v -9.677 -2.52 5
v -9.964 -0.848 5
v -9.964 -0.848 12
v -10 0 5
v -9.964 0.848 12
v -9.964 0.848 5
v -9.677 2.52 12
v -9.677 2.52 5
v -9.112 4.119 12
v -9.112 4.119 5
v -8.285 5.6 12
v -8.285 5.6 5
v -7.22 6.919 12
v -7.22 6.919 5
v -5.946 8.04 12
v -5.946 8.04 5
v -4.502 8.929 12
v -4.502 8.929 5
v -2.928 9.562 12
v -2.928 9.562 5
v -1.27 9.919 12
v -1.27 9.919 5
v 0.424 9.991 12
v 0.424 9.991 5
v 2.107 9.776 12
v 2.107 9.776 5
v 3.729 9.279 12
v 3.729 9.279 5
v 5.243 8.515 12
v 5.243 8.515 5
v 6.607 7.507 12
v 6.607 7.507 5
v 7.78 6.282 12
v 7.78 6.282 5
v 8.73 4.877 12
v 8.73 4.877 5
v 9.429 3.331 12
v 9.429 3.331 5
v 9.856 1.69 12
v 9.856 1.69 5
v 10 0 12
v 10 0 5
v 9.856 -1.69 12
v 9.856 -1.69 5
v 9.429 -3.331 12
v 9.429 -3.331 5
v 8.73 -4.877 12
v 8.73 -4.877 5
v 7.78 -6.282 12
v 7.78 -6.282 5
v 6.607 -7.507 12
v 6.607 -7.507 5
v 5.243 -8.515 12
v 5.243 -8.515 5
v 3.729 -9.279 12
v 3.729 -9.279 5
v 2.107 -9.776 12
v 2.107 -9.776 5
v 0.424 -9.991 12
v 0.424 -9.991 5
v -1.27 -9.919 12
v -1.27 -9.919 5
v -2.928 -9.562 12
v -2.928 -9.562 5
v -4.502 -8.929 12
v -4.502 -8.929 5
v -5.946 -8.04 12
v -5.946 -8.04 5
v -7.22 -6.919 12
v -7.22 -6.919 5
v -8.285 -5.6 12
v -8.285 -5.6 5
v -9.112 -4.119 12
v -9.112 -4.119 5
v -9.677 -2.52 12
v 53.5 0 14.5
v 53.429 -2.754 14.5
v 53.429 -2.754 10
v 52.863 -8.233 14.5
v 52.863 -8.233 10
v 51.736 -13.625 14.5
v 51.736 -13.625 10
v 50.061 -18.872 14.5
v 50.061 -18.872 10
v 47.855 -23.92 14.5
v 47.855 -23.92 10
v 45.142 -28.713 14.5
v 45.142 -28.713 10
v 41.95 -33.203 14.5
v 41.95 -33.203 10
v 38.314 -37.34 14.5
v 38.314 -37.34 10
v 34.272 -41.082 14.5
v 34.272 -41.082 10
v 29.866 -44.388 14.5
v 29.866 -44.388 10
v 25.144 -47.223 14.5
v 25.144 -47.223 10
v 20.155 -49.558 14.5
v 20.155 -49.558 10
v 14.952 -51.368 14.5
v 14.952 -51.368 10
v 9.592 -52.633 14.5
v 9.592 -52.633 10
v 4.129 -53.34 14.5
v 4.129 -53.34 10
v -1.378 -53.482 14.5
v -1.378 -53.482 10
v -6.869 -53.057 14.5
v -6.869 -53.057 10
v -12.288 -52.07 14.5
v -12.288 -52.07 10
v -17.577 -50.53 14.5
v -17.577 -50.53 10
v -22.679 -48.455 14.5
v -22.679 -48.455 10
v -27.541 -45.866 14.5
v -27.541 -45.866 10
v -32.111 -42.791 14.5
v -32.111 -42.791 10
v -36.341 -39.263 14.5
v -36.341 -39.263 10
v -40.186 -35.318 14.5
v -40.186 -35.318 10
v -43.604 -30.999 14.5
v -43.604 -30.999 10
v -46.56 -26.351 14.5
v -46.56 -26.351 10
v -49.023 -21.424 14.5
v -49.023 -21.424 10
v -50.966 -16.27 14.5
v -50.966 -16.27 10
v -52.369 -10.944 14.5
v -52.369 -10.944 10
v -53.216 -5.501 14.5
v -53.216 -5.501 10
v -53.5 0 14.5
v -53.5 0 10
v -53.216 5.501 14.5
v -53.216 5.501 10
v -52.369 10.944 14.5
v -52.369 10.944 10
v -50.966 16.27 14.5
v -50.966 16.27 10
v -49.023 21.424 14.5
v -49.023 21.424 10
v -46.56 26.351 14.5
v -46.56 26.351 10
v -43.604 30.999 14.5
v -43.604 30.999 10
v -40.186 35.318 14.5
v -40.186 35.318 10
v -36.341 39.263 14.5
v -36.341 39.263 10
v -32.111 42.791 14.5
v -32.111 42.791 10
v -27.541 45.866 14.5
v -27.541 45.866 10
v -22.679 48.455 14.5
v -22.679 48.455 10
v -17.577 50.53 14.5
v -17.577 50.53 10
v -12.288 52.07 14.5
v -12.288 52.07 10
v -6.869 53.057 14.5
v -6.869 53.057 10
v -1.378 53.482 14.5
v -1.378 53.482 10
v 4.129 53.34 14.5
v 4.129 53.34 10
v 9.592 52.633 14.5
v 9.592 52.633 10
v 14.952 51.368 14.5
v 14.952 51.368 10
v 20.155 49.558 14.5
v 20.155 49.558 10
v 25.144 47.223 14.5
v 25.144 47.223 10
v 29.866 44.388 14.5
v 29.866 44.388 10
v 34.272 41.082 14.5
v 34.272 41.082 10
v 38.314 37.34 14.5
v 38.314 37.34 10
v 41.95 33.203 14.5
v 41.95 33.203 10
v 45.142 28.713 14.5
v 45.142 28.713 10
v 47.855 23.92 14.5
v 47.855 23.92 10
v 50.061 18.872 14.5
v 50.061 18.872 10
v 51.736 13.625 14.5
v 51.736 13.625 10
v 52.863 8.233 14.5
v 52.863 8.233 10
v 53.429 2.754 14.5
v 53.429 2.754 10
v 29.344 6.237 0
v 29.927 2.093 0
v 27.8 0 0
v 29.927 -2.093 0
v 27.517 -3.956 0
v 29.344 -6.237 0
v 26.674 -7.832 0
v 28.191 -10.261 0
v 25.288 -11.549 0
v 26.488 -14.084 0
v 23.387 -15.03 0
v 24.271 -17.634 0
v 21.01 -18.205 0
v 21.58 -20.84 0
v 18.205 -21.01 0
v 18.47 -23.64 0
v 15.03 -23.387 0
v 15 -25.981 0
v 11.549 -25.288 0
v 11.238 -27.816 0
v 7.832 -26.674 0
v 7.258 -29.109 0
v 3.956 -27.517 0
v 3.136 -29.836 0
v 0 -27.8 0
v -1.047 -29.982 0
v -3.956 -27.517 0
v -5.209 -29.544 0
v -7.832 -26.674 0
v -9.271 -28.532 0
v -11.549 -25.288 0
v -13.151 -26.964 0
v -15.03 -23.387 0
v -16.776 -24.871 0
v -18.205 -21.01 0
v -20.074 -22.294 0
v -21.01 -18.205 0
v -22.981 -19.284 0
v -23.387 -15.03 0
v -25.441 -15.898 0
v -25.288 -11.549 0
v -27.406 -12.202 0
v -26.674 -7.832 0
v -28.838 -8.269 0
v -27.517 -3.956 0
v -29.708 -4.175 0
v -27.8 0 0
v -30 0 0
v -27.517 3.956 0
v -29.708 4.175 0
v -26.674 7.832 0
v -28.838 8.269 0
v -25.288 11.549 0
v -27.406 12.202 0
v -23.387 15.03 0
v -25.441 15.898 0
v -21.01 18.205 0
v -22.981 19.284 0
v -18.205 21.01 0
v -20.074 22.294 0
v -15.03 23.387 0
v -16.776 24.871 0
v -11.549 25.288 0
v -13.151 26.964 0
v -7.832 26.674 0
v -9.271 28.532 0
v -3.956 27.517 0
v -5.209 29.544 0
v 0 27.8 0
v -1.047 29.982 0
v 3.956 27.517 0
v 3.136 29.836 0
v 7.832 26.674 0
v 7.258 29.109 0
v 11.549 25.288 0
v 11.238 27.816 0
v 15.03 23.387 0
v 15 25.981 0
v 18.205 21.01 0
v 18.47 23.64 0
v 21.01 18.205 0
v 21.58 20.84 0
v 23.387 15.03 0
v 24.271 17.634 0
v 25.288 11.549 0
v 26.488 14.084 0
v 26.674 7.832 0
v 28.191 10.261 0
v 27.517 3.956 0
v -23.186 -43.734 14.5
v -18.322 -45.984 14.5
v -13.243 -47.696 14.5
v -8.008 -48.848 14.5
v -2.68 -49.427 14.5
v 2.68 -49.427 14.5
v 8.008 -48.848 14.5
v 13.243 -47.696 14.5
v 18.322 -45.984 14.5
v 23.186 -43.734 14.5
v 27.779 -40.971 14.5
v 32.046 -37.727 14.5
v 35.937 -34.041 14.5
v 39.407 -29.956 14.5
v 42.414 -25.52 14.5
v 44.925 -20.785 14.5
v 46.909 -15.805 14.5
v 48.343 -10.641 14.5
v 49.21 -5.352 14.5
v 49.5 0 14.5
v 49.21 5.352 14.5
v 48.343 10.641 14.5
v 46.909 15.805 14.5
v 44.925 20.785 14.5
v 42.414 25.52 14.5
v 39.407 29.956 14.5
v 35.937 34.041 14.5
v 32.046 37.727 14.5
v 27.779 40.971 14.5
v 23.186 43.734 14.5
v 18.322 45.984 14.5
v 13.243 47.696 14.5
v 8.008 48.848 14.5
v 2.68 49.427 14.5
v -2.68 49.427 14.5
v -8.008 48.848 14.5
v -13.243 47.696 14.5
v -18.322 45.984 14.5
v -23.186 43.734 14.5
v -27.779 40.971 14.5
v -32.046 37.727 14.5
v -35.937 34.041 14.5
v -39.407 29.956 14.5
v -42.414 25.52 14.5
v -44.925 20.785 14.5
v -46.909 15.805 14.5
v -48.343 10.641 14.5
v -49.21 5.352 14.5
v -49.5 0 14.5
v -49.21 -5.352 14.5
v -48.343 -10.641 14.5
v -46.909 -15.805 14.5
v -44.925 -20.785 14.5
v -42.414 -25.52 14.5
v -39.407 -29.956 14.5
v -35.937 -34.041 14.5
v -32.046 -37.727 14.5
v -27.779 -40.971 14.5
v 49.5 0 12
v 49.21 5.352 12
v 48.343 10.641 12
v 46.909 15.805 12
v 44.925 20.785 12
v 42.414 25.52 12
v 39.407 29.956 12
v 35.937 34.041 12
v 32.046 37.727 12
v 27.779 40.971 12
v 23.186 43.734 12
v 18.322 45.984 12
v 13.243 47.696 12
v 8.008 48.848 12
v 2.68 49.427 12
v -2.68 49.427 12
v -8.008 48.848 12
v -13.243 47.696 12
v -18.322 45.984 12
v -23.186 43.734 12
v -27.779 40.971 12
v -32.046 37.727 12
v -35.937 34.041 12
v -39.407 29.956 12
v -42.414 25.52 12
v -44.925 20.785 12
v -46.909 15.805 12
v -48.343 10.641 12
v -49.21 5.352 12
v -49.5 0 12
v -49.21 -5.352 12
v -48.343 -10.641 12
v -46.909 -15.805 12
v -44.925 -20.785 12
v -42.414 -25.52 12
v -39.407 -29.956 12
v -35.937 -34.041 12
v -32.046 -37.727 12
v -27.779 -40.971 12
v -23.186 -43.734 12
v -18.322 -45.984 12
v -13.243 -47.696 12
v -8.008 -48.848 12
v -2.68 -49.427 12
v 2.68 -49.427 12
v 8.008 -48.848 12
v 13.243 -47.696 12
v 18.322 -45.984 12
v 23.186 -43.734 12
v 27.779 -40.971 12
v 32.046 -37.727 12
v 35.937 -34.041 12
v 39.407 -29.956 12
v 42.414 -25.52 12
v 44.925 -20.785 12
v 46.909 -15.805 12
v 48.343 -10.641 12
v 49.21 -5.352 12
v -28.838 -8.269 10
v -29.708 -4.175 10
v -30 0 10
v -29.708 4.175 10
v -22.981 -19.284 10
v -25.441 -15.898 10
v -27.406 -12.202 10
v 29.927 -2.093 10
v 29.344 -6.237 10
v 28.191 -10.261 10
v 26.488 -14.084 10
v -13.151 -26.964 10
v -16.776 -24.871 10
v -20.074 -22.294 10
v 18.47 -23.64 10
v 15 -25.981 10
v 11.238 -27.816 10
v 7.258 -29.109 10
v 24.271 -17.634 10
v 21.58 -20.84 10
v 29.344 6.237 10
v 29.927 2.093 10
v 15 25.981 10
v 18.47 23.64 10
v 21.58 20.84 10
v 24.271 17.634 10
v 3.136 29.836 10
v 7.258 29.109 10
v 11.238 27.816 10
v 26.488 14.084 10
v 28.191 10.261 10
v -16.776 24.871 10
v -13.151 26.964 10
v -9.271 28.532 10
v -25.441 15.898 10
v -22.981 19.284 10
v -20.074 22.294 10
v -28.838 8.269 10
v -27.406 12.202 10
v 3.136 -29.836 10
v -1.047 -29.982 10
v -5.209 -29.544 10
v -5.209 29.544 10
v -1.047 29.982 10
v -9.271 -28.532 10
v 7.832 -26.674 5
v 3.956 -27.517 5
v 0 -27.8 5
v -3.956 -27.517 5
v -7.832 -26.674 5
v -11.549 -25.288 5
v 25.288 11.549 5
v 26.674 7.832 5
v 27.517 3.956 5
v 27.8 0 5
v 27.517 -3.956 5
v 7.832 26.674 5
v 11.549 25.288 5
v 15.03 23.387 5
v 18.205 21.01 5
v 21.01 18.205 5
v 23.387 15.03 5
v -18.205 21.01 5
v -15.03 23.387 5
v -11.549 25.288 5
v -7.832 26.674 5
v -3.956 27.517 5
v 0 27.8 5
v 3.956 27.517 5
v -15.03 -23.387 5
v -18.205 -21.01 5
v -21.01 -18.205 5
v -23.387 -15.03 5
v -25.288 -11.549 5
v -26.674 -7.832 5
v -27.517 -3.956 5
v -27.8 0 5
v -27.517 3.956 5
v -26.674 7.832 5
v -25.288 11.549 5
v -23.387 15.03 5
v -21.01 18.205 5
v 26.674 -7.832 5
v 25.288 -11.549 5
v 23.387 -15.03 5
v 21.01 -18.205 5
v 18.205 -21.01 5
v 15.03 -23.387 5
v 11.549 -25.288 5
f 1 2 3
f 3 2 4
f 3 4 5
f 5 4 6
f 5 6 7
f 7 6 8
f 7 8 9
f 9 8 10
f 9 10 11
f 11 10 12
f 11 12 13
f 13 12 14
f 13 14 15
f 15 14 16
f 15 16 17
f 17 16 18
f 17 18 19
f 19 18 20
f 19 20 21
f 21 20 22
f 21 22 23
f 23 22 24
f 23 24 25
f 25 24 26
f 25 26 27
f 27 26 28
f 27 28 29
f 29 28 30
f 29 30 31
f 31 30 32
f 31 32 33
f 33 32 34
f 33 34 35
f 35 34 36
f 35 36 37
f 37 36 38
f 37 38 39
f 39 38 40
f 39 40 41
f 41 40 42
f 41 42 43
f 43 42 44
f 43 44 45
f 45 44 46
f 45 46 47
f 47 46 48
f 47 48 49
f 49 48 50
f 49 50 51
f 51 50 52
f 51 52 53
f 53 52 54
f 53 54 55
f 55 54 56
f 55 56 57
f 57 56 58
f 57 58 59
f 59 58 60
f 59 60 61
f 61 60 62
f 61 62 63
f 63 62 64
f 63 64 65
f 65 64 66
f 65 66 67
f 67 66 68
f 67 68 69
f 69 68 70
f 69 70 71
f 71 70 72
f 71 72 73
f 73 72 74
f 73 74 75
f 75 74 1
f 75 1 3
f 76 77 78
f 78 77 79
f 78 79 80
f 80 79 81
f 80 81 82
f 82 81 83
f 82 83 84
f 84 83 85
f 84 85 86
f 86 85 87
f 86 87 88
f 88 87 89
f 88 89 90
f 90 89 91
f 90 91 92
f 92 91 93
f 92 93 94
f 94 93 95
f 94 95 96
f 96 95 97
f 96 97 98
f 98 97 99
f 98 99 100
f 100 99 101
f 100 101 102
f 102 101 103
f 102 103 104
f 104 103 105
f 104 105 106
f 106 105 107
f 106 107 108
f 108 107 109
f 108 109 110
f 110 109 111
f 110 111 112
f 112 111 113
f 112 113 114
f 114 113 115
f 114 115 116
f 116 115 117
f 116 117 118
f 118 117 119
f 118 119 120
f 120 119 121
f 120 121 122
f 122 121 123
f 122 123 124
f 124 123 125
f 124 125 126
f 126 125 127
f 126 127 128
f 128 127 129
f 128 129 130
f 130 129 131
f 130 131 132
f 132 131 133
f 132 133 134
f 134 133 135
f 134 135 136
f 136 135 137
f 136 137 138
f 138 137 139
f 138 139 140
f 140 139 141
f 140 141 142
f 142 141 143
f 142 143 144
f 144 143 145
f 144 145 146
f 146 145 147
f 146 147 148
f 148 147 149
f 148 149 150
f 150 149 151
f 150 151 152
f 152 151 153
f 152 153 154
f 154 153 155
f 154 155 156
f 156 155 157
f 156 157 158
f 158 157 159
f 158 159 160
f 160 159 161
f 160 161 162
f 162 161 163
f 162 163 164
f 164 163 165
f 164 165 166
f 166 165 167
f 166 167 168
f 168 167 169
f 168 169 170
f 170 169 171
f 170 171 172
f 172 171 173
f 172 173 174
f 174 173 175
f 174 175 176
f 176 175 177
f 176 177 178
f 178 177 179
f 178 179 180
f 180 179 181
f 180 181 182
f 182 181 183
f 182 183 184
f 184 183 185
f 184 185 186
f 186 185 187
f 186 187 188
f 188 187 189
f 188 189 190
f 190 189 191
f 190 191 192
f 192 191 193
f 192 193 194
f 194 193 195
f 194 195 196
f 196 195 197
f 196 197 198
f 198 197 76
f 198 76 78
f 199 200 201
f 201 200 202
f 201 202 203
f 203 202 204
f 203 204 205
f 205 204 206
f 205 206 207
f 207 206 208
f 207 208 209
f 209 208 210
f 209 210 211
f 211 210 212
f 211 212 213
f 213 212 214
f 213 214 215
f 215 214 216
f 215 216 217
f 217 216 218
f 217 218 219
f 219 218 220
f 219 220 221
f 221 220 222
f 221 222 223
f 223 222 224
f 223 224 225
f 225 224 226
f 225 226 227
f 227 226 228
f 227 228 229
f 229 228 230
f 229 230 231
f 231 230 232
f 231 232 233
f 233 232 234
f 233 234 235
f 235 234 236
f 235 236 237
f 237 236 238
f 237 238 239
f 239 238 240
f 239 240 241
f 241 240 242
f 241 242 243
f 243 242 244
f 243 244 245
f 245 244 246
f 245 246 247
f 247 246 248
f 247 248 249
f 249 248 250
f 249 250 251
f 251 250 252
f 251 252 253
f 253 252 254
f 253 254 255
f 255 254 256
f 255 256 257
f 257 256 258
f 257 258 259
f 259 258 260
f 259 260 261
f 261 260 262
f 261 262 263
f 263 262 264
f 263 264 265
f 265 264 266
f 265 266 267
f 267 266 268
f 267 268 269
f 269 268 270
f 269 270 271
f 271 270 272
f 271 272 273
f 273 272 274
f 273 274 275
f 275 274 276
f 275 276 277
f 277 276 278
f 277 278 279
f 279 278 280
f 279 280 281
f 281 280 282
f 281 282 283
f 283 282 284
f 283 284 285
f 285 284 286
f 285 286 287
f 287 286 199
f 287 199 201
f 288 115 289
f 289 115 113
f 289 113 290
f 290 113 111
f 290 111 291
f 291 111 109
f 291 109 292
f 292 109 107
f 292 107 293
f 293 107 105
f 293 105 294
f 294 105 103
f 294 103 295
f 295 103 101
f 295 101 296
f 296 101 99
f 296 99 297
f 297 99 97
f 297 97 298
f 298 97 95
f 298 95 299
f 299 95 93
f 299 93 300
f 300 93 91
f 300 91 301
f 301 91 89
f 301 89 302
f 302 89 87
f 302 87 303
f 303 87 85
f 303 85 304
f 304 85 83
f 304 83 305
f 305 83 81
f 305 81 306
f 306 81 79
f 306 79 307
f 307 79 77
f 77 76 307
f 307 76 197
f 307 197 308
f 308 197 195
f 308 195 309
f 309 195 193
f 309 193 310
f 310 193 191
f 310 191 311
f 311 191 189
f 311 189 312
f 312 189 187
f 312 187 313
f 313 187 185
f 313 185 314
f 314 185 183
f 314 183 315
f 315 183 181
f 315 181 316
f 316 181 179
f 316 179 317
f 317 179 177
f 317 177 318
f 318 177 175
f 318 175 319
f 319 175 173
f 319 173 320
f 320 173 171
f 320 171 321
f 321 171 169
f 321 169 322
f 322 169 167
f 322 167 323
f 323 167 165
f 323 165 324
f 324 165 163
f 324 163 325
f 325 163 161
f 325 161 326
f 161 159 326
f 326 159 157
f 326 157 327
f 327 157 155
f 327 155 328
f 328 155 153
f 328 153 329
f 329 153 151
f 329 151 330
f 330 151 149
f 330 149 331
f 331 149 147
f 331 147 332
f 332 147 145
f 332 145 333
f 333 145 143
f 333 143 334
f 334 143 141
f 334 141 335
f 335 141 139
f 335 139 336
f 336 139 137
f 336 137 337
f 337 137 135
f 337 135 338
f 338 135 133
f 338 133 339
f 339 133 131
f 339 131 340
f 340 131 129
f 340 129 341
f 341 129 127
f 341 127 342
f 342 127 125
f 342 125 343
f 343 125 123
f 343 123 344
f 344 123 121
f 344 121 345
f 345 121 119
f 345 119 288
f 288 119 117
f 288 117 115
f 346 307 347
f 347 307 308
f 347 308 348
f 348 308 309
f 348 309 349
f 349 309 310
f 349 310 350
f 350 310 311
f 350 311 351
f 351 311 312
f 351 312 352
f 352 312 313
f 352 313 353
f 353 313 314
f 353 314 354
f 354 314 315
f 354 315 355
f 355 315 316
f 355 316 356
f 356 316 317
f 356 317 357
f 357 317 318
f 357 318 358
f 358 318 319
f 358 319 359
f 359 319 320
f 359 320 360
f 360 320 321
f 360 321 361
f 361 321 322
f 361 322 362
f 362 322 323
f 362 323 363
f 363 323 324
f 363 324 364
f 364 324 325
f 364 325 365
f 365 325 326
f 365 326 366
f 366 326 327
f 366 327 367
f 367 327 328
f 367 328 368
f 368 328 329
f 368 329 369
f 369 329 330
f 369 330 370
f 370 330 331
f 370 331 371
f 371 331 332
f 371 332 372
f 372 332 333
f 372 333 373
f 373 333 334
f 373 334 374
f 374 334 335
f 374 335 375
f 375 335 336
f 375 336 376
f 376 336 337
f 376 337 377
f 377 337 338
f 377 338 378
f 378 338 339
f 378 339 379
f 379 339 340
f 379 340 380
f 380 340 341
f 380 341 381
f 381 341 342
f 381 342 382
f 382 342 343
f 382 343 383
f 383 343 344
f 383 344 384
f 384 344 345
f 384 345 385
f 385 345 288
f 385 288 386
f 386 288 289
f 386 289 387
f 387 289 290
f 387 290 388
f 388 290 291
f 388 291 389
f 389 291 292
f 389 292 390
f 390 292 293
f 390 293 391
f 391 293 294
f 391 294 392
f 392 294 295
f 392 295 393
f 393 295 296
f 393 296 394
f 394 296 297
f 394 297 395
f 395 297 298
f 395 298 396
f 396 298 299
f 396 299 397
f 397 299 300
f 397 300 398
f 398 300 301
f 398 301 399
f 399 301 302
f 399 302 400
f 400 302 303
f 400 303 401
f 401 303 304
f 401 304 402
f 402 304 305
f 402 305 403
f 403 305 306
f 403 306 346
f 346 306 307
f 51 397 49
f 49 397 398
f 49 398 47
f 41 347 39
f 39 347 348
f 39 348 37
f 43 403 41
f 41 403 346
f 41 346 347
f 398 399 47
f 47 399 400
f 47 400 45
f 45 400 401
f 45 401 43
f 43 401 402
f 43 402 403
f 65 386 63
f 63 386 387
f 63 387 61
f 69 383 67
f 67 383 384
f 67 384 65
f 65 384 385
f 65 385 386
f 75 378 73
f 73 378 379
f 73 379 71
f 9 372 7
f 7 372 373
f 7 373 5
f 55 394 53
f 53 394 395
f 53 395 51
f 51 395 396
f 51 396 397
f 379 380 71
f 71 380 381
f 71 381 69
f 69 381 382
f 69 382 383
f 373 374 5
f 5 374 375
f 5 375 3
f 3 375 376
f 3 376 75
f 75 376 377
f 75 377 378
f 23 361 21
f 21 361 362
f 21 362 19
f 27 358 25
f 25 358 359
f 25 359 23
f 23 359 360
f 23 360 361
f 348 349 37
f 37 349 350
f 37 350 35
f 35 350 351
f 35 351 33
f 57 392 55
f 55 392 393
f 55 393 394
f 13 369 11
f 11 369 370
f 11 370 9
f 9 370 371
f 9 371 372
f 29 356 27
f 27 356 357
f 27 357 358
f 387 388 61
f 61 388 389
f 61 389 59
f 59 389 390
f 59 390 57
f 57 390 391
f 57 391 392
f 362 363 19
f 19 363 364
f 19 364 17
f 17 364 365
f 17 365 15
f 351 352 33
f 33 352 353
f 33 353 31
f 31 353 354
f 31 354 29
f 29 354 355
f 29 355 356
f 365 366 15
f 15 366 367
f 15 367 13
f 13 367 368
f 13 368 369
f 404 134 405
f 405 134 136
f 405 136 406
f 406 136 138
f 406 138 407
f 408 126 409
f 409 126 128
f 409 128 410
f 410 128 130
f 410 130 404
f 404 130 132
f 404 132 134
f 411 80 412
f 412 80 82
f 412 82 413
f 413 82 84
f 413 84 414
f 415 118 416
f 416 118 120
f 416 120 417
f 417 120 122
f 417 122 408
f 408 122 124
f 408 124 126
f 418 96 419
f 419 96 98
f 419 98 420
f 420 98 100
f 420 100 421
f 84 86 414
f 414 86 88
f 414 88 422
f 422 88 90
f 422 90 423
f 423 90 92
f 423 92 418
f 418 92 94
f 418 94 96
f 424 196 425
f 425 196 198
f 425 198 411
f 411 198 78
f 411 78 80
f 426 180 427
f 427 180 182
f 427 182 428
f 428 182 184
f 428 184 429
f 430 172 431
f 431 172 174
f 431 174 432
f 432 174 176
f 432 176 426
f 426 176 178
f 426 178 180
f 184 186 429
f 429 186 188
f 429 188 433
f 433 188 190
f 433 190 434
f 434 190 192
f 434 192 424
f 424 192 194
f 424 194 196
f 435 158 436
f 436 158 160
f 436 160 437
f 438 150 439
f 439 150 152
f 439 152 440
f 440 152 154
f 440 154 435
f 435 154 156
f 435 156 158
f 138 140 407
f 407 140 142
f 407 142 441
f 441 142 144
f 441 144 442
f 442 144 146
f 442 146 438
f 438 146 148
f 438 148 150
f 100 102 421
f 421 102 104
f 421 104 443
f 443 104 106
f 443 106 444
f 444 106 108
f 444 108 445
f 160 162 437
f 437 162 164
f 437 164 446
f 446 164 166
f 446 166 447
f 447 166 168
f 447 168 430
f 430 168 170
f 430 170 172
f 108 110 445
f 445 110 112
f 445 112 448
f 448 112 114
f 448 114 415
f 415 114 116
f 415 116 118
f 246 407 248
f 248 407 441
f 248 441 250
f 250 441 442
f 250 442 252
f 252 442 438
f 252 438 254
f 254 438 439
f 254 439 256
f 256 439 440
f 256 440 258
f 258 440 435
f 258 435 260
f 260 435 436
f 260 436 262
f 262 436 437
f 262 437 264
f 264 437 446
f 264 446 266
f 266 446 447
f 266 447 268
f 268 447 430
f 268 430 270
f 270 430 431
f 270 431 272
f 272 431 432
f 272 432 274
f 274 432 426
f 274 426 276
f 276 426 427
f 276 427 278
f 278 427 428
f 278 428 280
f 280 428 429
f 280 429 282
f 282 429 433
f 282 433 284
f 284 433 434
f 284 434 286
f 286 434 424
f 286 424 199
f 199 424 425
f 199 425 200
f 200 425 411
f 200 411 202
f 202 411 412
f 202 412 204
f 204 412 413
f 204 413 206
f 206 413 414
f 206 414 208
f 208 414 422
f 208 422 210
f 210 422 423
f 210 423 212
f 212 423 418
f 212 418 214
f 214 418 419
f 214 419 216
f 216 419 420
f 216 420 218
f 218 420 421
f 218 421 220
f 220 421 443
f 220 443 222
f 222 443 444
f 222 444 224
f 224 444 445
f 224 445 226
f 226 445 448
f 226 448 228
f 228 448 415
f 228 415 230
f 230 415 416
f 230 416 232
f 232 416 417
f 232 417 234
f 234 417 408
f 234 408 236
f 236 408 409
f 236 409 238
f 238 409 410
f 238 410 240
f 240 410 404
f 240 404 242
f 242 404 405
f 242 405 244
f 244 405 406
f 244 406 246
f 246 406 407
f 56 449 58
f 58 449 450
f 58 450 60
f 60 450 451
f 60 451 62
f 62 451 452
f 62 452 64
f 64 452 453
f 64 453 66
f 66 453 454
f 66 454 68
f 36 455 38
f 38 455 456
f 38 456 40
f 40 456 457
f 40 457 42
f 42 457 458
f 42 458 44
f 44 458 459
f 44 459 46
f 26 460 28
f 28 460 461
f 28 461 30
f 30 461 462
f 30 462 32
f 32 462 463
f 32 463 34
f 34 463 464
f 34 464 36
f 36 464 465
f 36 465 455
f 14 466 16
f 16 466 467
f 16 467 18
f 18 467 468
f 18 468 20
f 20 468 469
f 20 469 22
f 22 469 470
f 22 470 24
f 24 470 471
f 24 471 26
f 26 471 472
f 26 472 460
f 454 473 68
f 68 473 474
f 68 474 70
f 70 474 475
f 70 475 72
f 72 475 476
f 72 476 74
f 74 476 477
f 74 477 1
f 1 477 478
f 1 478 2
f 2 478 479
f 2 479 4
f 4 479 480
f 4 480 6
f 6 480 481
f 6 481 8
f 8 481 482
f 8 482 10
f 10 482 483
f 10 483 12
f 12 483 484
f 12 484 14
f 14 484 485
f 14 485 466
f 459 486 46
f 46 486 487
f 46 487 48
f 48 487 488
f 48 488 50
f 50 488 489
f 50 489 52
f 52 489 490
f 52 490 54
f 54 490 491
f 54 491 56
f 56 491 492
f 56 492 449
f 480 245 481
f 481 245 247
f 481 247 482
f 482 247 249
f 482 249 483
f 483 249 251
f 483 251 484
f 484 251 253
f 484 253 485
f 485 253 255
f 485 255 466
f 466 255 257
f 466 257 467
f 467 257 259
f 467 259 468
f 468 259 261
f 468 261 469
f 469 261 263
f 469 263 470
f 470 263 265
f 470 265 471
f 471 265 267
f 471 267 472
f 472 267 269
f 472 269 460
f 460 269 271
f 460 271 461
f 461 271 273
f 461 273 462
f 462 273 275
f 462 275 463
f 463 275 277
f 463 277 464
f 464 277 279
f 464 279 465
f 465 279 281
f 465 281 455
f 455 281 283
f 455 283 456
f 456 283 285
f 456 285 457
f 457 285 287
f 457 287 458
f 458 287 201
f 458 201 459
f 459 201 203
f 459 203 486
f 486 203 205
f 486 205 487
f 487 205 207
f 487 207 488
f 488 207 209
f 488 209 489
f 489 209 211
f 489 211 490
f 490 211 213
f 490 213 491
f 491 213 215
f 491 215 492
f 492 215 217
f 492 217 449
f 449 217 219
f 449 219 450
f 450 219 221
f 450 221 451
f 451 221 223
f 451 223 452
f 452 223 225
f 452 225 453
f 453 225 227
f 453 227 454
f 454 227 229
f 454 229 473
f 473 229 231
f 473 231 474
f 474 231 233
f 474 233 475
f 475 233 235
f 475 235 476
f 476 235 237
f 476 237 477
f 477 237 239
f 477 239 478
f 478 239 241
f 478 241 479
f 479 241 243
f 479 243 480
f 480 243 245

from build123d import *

# Parameters (mm, degrees)
SKETCH1_R           = 53.5
BOSS_EXTRUDE1_DEPTH = 14.5
SKETCH2_R           = 49.5
CUT_EXTRUDE1_DEPTH  = 2.5
SKETCH3_R           = 10
CUT_EXTRUDE3_DEPTH  = 14.5
SKETCH6_R           = 53.5
SKETCH6_R_2         = 30
CUT_EXTRUDE8_DEPTH  = 10
SKETCH7_R           = 27.8
CUT_EXTRUDE9_DEPTH  = 5


with BuildPart() as part:
    # Sketch1 → Boss-Extrude1 (new body)
    with BuildSketch(Plane.XY):
        with Locations(Location((0, 0, 0), (0, 0, 180))):
            Circle(SKETCH1_R)
    extrude(amount=BOSS_EXTRUDE1_DEPTH)

    # Sketch2 → Cut-Extrude1 (cut)
    with BuildSketch(Plane.XY.offset(14.5)):
        Circle(SKETCH2_R)
    extrude(amount=-CUT_EXTRUDE1_DEPTH, mode=Mode.SUBTRACT)

    # Sketch3 → Cut-Extrude3 (cut)
    with BuildSketch(Plane.XY.offset(12)):
        Circle(SKETCH3_R)
    extrude(amount=-CUT_EXTRUDE3_DEPTH, mode=Mode.SUBTRACT)

    # Sketch6 → Cut-Extrude8 (cut)
    with BuildSketch(Plane(origin=(0, 0, 0), x_dir=(-1, 0, 0), z_dir=(0, 0, -1))):
        Circle(SKETCH6_R)
        Circle(SKETCH6_R_2, mode=Mode.SUBTRACT)
    extrude(amount=-CUT_EXTRUDE8_DEPTH, mode=Mode.SUBTRACT)

    # Sketch7 → Cut-Extrude9 (cut)
    with BuildSketch(Plane(origin=(0, 0, 0), x_dir=(-1, 0, 0), z_dir=(0, 0, -1))):
        Circle(SKETCH7_R)
    extrude(amount=-CUT_EXTRUDE9_DEPTH, mode=Mode.SUBTRACT)


solid = part.part
